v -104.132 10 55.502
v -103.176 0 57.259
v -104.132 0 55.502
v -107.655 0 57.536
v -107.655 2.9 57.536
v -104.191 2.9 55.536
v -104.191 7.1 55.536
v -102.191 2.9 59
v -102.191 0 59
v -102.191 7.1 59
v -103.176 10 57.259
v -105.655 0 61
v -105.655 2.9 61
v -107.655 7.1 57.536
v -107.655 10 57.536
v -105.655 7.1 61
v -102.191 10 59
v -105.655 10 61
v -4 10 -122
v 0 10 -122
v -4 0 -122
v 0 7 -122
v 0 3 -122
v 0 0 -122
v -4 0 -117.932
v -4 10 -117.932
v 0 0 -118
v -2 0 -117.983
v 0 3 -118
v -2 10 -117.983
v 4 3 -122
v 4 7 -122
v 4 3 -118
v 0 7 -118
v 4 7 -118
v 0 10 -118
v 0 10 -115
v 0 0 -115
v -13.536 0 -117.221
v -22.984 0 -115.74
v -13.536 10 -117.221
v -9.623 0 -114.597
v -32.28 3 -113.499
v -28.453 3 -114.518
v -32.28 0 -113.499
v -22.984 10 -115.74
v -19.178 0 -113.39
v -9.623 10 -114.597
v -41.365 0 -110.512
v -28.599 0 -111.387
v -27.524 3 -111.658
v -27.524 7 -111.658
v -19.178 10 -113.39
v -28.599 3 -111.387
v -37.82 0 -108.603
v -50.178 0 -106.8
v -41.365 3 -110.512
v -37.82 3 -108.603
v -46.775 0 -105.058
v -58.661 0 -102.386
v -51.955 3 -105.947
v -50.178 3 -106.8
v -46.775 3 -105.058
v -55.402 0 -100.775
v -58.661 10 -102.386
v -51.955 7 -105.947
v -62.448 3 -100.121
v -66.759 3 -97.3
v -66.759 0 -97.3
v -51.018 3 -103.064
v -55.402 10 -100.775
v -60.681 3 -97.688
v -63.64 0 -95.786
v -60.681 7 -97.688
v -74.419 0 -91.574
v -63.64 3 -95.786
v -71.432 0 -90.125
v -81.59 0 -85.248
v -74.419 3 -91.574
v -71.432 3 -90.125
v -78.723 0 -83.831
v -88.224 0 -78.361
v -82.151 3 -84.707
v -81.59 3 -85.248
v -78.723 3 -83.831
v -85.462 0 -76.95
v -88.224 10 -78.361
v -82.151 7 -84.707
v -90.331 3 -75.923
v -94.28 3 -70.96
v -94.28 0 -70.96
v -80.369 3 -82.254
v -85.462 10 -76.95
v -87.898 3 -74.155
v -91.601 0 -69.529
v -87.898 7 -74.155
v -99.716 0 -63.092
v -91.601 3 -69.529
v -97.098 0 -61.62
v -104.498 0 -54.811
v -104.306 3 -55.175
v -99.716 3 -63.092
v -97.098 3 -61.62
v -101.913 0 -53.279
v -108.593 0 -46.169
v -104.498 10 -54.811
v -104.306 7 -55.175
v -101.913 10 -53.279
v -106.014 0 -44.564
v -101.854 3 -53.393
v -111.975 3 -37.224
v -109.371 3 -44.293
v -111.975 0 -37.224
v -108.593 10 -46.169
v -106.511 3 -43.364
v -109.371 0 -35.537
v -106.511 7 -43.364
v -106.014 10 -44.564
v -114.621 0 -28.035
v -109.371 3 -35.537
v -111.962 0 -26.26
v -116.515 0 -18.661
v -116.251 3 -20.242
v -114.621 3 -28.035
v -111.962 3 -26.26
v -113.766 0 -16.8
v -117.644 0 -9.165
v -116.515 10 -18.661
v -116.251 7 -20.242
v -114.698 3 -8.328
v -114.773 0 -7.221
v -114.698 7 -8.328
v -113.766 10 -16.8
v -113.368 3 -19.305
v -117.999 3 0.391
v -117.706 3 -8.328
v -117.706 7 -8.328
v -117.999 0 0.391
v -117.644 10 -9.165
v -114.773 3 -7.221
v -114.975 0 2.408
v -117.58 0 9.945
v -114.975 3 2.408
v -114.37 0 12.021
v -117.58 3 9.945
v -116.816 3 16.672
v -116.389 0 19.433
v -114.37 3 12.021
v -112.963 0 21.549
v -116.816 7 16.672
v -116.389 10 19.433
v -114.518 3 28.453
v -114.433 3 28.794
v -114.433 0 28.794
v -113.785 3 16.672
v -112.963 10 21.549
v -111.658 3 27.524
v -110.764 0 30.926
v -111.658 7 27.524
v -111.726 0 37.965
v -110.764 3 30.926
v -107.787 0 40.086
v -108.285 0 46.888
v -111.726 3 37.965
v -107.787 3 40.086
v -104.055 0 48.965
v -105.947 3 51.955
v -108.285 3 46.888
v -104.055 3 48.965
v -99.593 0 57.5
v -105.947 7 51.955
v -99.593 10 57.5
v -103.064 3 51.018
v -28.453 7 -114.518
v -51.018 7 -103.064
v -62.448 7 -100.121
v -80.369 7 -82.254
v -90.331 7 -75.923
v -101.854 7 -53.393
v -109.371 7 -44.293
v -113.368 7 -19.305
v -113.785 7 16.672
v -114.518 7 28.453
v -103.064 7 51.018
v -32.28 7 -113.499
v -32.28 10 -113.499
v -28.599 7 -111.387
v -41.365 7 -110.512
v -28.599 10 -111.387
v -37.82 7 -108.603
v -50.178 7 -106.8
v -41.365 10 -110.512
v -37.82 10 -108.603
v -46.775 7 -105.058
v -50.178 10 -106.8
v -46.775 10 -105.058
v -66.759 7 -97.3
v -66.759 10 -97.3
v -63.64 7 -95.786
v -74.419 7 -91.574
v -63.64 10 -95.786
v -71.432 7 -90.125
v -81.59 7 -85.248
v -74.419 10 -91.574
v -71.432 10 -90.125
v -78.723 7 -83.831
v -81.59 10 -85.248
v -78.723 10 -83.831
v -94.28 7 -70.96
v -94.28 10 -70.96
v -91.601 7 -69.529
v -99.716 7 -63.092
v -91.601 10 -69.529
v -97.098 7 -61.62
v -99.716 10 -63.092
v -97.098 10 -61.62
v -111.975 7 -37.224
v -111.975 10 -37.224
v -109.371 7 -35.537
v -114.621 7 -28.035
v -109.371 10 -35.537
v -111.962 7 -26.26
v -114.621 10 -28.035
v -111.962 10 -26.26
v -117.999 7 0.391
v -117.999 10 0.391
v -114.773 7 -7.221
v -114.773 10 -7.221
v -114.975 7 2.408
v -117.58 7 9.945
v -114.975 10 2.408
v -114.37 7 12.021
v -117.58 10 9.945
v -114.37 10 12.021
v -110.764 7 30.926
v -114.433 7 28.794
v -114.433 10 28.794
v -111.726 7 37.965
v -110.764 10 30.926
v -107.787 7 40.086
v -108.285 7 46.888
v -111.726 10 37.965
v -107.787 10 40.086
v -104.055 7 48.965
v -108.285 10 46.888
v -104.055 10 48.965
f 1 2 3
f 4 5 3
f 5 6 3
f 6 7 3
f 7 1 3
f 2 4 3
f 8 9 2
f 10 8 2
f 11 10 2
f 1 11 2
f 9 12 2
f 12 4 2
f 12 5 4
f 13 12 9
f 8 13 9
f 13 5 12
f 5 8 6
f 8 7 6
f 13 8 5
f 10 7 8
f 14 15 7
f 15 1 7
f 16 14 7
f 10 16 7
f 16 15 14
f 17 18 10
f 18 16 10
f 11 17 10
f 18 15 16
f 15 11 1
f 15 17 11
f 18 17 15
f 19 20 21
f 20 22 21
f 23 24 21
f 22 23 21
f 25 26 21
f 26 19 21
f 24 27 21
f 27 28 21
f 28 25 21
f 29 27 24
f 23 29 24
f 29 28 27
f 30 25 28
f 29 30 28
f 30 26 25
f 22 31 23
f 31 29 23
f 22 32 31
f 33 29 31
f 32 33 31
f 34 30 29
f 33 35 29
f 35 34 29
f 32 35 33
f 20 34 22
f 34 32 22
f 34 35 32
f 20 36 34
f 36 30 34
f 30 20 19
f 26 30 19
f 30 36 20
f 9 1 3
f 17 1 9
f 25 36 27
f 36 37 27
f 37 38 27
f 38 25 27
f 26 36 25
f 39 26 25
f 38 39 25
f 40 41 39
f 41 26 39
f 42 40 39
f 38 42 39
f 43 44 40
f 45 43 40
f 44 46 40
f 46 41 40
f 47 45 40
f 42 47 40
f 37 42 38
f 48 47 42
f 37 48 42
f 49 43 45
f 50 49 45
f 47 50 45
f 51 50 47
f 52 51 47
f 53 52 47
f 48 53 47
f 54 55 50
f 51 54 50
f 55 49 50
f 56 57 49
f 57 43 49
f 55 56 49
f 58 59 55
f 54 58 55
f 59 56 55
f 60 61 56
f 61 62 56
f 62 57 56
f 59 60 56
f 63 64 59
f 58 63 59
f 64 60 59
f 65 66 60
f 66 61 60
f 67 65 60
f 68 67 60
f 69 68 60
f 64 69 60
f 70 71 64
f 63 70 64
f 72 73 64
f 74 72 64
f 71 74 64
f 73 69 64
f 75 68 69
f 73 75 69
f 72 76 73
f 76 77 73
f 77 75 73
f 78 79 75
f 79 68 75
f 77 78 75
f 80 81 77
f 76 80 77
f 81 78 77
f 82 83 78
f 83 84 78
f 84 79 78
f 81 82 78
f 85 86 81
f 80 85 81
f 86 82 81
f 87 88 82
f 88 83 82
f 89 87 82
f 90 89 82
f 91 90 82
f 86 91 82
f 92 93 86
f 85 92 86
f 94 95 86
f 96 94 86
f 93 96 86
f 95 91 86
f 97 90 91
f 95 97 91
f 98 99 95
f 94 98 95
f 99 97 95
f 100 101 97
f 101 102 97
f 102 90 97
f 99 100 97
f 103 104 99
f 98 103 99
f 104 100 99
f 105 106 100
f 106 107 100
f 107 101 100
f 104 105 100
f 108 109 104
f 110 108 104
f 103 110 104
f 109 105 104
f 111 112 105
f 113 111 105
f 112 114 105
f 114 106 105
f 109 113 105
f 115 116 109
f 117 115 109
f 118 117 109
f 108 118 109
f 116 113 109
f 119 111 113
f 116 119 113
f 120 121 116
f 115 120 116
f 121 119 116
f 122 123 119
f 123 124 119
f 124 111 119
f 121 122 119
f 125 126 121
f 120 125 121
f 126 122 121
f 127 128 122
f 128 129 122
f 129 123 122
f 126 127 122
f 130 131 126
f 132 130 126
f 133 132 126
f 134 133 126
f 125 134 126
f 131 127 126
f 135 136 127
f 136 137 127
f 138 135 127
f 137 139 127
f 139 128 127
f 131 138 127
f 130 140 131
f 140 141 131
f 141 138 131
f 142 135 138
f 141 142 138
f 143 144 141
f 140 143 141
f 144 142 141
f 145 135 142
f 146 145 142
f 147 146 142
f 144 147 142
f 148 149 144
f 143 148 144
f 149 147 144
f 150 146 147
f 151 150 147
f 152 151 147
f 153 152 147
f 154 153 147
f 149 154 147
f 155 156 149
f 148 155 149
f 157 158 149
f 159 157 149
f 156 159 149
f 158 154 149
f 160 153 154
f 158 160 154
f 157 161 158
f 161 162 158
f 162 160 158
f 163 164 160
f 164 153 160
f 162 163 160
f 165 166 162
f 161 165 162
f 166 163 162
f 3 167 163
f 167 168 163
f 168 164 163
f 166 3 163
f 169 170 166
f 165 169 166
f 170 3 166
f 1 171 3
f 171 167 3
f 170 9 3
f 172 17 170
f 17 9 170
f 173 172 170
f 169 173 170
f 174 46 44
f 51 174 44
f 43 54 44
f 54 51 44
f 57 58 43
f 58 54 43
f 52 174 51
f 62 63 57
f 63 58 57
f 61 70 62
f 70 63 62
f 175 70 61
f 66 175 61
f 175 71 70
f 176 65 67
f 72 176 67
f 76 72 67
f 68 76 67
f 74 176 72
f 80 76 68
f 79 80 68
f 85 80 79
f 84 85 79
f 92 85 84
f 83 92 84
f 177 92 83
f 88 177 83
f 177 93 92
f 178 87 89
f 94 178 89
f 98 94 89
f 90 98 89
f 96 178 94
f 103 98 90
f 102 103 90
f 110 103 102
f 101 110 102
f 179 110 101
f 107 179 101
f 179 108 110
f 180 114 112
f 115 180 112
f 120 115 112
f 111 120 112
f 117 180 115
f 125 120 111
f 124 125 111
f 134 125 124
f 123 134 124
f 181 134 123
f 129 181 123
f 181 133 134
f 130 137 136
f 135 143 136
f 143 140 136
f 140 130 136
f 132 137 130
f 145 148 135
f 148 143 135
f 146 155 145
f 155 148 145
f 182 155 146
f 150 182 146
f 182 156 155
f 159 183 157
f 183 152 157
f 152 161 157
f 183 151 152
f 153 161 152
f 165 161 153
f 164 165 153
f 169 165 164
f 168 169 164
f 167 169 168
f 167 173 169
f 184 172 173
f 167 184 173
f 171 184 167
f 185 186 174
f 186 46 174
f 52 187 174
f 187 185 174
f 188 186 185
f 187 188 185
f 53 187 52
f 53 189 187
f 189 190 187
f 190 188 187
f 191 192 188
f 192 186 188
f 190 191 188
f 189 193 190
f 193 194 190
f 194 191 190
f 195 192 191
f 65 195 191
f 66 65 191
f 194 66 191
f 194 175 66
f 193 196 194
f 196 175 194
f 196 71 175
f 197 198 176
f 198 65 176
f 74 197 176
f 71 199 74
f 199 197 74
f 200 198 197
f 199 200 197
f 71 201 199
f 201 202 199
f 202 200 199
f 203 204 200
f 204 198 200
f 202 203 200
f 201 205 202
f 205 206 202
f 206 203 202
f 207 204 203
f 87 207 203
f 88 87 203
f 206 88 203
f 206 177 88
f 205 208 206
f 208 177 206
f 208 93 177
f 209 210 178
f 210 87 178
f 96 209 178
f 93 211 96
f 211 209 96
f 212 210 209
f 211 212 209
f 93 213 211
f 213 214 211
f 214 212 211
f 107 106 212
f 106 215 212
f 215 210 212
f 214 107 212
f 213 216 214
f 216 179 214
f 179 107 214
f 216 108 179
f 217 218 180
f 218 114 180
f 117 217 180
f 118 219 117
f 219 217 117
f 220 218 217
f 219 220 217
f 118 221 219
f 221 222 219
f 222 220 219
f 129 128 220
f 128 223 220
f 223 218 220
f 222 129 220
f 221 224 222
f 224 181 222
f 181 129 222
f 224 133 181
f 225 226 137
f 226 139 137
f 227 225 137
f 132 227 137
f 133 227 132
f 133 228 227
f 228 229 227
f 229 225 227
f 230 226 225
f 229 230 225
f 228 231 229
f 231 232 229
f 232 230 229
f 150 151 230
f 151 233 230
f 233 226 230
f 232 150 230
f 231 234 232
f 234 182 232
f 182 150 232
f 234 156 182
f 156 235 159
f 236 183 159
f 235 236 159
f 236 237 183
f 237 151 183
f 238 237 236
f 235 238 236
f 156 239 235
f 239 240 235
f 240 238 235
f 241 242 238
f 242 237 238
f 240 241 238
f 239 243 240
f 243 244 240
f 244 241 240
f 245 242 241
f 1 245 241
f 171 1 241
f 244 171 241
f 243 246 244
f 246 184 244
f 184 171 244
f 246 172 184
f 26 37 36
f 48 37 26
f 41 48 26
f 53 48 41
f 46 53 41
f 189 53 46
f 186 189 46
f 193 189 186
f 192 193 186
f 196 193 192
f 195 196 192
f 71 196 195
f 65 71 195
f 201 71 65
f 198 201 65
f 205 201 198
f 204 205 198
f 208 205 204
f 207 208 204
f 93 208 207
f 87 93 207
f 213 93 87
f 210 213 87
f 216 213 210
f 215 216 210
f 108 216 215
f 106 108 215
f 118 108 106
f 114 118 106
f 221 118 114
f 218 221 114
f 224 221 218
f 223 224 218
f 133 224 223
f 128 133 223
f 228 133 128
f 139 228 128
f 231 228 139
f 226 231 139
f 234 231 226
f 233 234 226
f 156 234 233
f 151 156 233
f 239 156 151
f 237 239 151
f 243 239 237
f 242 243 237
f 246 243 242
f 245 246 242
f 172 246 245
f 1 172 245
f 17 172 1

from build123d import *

# Parameters (mm, degrees)
BOSS_EXTRUDE1_DEPTH             = 10
BOSS_EXTRUDE1_2_DEPTH           = 10
BOSS_EXTRUDE1_3_DEPTH           = 10
SKETCH2_W                       = 8
SKETCH2_H                       = 4.2
CUT_EXTRUDE1_DEPTH              = 4
SKETCH3_W                       = 8
SKETCH3_H                       = 4
BOSS_EXTRUDE2_DEPTH             = 4
SKETCH4_W                       = 25
SKETCH4_H                       = 4
CUT_EXTRUDE2_DEPTH              = 171.023527784
CIRPATTERN4_COUNT               = 5
CIRPATTERN4_ANGLE               = 72
CIRPATTERN4_THE_OTHER_WAY_COUNT = 5
CIRPATTERN4_THE_OTHER_WAY_ANGLE = 72


with BuildPart() as part:
    # Sketch1 → Boss-Extrude1 (new body)
    with BuildSketch(Plane(origin=(0, 0, 0), x_dir=(1, 0, 0), z_dir=(0, 1, 0))):
        with BuildLine():
            Line((0, 115), (0, 118))
            Line((0, 118), (-4, 117.932183902))
            ThreePointArc((-4, 117.932183902), (-102.190997647, 59), (-104.132267183, -55.501990336))
            Line((-104.132267183, -55.501990336), (-102.190997647, -59))
            Line((-102.190997647, -59), (-99.592921435, -57.5))
            ThreePointArc((-99.592921435, -57.5), (-99.592921435, 57.5), (0, 115))
        make_face()
    extrude(amount=BOSS_EXTRUDE1_DEPTH)



with BuildPart() as body_2:
    # Sketch1 → Boss-Extrude1 2 (new body)
    with BuildSketch(Plane(origin=(0, 0, 0), x_dir=(1, 0, 0), z_dir=(0, 1, 0))):
        with BuildLine():
            ThreePointArc((-4, 117.932183902), (-2.000287418, 117.983044757), (0, 118))
            Line((0, 118), (0, 122))
            Line((0, 122), (-4, 122))
            Line((-4, 122), (-4, 117.932183902))
        make_face()
    extrude(amount=BOSS_EXTRUDE1_2_DEPTH)


with BuildPart() as body_3:
    # Sketch1 → Boss-Extrude1 3 (new body)
    with BuildSketch(Plane(origin=(0, 0, 0), x_dir=(1, 0, 0), z_dir=(0, 1, 0))):
        with BuildLine():
            ThreePointArc((-102.190997647, -59), (-103.176457685, -57.25922266), (-104.132267183, -55.501990336))
            Line((-104.132267183, -55.501990336), (-107.655099262, -57.535898385))
            Line((-107.655099262, -57.535898385), (-105.655099262, -61))
            Line((-105.655099262, -61), (-102.190997647, -59))
        make_face()
    extrude(amount=BOSS_EXTRUDE1_3_DEPTH)

    # Sketch2 → Cut-Extrude1 (cut)
    with BuildSketch(Plane(origin=(-105.655099262, 0, 61), x_dir=(0.5000000000000009, 0, 0.8660254037844382), z_dir=(-0.8660254037844382, 0, 0.5000000000000009))):
        with Locations((0, 5)):
            Rectangle(SKETCH2_W, SKETCH2_H)
    extrude(amount=-CUT_EXTRUDE1_DEPTH, mode=Mode.SUBTRACT)


with BuildPart() as part_1:
    add(part.part)

    add(body_2.part)  # Boss-Extrude2 merges body 2
    # Sketch3 → Boss-Extrude2 (add)
    with BuildSketch(Plane(origin=(0, 0, -122), x_dir=(-1, 0, 0), z_dir=(0, 0, -1))):
        with Locations((0, 5)):
            Rectangle(SKETCH3_W, SKETCH3_H)
    extrude(amount=-BOSS_EXTRUDE2_DEPTH)

    # Sketch4 → Cut-Extrude2 (cut, through all)
    with BuildSketch(Plane(origin=(0, 0, 0), x_dir=(0, 0, -1), z_dir=(1, 0, 0))):
        with Locations((-4.172320837, 5)):
            Rectangle(SKETCH4_W, SKETCH4_H)
    cut_extrude2 = extrude(amount=-CUT_EXTRUDE2_DEPTH, mode=Mode.SUBTRACT)

    # CirPattern4: Cut-Extrude2 ×5 about axis
    cirpattern4_axis = Axis((0, 0, 0), (0, -1, 0))
    for i in range(1, CIRPATTERN4_COUNT):
        add(cut_extrude2.rotate(cirpattern4_axis, i * CIRPATTERN4_ANGLE / (CIRPATTERN4_COUNT - 1)), mode=Mode.SUBTRACT)

    # CirPattern4 the other way: Cut-Extrude2 ×5 about axis
    cirpattern4_the_other_way_axis = Axis((0, 0, 0), (0, 1, 0))
    for i in range(1, CIRPATTERN4_THE_OTHER_WAY_COUNT):
        add(cut_extrude2.rotate(cirpattern4_the_other_way_axis, i * CIRPATTERN4_THE_OTHER_WAY_ANGLE / (CIRPATTERN4_THE_OTHER_WAY_COUNT - 1)), mode=Mode.SUBTRACT)


solid = Compound([body_3.part, part_1.part])
